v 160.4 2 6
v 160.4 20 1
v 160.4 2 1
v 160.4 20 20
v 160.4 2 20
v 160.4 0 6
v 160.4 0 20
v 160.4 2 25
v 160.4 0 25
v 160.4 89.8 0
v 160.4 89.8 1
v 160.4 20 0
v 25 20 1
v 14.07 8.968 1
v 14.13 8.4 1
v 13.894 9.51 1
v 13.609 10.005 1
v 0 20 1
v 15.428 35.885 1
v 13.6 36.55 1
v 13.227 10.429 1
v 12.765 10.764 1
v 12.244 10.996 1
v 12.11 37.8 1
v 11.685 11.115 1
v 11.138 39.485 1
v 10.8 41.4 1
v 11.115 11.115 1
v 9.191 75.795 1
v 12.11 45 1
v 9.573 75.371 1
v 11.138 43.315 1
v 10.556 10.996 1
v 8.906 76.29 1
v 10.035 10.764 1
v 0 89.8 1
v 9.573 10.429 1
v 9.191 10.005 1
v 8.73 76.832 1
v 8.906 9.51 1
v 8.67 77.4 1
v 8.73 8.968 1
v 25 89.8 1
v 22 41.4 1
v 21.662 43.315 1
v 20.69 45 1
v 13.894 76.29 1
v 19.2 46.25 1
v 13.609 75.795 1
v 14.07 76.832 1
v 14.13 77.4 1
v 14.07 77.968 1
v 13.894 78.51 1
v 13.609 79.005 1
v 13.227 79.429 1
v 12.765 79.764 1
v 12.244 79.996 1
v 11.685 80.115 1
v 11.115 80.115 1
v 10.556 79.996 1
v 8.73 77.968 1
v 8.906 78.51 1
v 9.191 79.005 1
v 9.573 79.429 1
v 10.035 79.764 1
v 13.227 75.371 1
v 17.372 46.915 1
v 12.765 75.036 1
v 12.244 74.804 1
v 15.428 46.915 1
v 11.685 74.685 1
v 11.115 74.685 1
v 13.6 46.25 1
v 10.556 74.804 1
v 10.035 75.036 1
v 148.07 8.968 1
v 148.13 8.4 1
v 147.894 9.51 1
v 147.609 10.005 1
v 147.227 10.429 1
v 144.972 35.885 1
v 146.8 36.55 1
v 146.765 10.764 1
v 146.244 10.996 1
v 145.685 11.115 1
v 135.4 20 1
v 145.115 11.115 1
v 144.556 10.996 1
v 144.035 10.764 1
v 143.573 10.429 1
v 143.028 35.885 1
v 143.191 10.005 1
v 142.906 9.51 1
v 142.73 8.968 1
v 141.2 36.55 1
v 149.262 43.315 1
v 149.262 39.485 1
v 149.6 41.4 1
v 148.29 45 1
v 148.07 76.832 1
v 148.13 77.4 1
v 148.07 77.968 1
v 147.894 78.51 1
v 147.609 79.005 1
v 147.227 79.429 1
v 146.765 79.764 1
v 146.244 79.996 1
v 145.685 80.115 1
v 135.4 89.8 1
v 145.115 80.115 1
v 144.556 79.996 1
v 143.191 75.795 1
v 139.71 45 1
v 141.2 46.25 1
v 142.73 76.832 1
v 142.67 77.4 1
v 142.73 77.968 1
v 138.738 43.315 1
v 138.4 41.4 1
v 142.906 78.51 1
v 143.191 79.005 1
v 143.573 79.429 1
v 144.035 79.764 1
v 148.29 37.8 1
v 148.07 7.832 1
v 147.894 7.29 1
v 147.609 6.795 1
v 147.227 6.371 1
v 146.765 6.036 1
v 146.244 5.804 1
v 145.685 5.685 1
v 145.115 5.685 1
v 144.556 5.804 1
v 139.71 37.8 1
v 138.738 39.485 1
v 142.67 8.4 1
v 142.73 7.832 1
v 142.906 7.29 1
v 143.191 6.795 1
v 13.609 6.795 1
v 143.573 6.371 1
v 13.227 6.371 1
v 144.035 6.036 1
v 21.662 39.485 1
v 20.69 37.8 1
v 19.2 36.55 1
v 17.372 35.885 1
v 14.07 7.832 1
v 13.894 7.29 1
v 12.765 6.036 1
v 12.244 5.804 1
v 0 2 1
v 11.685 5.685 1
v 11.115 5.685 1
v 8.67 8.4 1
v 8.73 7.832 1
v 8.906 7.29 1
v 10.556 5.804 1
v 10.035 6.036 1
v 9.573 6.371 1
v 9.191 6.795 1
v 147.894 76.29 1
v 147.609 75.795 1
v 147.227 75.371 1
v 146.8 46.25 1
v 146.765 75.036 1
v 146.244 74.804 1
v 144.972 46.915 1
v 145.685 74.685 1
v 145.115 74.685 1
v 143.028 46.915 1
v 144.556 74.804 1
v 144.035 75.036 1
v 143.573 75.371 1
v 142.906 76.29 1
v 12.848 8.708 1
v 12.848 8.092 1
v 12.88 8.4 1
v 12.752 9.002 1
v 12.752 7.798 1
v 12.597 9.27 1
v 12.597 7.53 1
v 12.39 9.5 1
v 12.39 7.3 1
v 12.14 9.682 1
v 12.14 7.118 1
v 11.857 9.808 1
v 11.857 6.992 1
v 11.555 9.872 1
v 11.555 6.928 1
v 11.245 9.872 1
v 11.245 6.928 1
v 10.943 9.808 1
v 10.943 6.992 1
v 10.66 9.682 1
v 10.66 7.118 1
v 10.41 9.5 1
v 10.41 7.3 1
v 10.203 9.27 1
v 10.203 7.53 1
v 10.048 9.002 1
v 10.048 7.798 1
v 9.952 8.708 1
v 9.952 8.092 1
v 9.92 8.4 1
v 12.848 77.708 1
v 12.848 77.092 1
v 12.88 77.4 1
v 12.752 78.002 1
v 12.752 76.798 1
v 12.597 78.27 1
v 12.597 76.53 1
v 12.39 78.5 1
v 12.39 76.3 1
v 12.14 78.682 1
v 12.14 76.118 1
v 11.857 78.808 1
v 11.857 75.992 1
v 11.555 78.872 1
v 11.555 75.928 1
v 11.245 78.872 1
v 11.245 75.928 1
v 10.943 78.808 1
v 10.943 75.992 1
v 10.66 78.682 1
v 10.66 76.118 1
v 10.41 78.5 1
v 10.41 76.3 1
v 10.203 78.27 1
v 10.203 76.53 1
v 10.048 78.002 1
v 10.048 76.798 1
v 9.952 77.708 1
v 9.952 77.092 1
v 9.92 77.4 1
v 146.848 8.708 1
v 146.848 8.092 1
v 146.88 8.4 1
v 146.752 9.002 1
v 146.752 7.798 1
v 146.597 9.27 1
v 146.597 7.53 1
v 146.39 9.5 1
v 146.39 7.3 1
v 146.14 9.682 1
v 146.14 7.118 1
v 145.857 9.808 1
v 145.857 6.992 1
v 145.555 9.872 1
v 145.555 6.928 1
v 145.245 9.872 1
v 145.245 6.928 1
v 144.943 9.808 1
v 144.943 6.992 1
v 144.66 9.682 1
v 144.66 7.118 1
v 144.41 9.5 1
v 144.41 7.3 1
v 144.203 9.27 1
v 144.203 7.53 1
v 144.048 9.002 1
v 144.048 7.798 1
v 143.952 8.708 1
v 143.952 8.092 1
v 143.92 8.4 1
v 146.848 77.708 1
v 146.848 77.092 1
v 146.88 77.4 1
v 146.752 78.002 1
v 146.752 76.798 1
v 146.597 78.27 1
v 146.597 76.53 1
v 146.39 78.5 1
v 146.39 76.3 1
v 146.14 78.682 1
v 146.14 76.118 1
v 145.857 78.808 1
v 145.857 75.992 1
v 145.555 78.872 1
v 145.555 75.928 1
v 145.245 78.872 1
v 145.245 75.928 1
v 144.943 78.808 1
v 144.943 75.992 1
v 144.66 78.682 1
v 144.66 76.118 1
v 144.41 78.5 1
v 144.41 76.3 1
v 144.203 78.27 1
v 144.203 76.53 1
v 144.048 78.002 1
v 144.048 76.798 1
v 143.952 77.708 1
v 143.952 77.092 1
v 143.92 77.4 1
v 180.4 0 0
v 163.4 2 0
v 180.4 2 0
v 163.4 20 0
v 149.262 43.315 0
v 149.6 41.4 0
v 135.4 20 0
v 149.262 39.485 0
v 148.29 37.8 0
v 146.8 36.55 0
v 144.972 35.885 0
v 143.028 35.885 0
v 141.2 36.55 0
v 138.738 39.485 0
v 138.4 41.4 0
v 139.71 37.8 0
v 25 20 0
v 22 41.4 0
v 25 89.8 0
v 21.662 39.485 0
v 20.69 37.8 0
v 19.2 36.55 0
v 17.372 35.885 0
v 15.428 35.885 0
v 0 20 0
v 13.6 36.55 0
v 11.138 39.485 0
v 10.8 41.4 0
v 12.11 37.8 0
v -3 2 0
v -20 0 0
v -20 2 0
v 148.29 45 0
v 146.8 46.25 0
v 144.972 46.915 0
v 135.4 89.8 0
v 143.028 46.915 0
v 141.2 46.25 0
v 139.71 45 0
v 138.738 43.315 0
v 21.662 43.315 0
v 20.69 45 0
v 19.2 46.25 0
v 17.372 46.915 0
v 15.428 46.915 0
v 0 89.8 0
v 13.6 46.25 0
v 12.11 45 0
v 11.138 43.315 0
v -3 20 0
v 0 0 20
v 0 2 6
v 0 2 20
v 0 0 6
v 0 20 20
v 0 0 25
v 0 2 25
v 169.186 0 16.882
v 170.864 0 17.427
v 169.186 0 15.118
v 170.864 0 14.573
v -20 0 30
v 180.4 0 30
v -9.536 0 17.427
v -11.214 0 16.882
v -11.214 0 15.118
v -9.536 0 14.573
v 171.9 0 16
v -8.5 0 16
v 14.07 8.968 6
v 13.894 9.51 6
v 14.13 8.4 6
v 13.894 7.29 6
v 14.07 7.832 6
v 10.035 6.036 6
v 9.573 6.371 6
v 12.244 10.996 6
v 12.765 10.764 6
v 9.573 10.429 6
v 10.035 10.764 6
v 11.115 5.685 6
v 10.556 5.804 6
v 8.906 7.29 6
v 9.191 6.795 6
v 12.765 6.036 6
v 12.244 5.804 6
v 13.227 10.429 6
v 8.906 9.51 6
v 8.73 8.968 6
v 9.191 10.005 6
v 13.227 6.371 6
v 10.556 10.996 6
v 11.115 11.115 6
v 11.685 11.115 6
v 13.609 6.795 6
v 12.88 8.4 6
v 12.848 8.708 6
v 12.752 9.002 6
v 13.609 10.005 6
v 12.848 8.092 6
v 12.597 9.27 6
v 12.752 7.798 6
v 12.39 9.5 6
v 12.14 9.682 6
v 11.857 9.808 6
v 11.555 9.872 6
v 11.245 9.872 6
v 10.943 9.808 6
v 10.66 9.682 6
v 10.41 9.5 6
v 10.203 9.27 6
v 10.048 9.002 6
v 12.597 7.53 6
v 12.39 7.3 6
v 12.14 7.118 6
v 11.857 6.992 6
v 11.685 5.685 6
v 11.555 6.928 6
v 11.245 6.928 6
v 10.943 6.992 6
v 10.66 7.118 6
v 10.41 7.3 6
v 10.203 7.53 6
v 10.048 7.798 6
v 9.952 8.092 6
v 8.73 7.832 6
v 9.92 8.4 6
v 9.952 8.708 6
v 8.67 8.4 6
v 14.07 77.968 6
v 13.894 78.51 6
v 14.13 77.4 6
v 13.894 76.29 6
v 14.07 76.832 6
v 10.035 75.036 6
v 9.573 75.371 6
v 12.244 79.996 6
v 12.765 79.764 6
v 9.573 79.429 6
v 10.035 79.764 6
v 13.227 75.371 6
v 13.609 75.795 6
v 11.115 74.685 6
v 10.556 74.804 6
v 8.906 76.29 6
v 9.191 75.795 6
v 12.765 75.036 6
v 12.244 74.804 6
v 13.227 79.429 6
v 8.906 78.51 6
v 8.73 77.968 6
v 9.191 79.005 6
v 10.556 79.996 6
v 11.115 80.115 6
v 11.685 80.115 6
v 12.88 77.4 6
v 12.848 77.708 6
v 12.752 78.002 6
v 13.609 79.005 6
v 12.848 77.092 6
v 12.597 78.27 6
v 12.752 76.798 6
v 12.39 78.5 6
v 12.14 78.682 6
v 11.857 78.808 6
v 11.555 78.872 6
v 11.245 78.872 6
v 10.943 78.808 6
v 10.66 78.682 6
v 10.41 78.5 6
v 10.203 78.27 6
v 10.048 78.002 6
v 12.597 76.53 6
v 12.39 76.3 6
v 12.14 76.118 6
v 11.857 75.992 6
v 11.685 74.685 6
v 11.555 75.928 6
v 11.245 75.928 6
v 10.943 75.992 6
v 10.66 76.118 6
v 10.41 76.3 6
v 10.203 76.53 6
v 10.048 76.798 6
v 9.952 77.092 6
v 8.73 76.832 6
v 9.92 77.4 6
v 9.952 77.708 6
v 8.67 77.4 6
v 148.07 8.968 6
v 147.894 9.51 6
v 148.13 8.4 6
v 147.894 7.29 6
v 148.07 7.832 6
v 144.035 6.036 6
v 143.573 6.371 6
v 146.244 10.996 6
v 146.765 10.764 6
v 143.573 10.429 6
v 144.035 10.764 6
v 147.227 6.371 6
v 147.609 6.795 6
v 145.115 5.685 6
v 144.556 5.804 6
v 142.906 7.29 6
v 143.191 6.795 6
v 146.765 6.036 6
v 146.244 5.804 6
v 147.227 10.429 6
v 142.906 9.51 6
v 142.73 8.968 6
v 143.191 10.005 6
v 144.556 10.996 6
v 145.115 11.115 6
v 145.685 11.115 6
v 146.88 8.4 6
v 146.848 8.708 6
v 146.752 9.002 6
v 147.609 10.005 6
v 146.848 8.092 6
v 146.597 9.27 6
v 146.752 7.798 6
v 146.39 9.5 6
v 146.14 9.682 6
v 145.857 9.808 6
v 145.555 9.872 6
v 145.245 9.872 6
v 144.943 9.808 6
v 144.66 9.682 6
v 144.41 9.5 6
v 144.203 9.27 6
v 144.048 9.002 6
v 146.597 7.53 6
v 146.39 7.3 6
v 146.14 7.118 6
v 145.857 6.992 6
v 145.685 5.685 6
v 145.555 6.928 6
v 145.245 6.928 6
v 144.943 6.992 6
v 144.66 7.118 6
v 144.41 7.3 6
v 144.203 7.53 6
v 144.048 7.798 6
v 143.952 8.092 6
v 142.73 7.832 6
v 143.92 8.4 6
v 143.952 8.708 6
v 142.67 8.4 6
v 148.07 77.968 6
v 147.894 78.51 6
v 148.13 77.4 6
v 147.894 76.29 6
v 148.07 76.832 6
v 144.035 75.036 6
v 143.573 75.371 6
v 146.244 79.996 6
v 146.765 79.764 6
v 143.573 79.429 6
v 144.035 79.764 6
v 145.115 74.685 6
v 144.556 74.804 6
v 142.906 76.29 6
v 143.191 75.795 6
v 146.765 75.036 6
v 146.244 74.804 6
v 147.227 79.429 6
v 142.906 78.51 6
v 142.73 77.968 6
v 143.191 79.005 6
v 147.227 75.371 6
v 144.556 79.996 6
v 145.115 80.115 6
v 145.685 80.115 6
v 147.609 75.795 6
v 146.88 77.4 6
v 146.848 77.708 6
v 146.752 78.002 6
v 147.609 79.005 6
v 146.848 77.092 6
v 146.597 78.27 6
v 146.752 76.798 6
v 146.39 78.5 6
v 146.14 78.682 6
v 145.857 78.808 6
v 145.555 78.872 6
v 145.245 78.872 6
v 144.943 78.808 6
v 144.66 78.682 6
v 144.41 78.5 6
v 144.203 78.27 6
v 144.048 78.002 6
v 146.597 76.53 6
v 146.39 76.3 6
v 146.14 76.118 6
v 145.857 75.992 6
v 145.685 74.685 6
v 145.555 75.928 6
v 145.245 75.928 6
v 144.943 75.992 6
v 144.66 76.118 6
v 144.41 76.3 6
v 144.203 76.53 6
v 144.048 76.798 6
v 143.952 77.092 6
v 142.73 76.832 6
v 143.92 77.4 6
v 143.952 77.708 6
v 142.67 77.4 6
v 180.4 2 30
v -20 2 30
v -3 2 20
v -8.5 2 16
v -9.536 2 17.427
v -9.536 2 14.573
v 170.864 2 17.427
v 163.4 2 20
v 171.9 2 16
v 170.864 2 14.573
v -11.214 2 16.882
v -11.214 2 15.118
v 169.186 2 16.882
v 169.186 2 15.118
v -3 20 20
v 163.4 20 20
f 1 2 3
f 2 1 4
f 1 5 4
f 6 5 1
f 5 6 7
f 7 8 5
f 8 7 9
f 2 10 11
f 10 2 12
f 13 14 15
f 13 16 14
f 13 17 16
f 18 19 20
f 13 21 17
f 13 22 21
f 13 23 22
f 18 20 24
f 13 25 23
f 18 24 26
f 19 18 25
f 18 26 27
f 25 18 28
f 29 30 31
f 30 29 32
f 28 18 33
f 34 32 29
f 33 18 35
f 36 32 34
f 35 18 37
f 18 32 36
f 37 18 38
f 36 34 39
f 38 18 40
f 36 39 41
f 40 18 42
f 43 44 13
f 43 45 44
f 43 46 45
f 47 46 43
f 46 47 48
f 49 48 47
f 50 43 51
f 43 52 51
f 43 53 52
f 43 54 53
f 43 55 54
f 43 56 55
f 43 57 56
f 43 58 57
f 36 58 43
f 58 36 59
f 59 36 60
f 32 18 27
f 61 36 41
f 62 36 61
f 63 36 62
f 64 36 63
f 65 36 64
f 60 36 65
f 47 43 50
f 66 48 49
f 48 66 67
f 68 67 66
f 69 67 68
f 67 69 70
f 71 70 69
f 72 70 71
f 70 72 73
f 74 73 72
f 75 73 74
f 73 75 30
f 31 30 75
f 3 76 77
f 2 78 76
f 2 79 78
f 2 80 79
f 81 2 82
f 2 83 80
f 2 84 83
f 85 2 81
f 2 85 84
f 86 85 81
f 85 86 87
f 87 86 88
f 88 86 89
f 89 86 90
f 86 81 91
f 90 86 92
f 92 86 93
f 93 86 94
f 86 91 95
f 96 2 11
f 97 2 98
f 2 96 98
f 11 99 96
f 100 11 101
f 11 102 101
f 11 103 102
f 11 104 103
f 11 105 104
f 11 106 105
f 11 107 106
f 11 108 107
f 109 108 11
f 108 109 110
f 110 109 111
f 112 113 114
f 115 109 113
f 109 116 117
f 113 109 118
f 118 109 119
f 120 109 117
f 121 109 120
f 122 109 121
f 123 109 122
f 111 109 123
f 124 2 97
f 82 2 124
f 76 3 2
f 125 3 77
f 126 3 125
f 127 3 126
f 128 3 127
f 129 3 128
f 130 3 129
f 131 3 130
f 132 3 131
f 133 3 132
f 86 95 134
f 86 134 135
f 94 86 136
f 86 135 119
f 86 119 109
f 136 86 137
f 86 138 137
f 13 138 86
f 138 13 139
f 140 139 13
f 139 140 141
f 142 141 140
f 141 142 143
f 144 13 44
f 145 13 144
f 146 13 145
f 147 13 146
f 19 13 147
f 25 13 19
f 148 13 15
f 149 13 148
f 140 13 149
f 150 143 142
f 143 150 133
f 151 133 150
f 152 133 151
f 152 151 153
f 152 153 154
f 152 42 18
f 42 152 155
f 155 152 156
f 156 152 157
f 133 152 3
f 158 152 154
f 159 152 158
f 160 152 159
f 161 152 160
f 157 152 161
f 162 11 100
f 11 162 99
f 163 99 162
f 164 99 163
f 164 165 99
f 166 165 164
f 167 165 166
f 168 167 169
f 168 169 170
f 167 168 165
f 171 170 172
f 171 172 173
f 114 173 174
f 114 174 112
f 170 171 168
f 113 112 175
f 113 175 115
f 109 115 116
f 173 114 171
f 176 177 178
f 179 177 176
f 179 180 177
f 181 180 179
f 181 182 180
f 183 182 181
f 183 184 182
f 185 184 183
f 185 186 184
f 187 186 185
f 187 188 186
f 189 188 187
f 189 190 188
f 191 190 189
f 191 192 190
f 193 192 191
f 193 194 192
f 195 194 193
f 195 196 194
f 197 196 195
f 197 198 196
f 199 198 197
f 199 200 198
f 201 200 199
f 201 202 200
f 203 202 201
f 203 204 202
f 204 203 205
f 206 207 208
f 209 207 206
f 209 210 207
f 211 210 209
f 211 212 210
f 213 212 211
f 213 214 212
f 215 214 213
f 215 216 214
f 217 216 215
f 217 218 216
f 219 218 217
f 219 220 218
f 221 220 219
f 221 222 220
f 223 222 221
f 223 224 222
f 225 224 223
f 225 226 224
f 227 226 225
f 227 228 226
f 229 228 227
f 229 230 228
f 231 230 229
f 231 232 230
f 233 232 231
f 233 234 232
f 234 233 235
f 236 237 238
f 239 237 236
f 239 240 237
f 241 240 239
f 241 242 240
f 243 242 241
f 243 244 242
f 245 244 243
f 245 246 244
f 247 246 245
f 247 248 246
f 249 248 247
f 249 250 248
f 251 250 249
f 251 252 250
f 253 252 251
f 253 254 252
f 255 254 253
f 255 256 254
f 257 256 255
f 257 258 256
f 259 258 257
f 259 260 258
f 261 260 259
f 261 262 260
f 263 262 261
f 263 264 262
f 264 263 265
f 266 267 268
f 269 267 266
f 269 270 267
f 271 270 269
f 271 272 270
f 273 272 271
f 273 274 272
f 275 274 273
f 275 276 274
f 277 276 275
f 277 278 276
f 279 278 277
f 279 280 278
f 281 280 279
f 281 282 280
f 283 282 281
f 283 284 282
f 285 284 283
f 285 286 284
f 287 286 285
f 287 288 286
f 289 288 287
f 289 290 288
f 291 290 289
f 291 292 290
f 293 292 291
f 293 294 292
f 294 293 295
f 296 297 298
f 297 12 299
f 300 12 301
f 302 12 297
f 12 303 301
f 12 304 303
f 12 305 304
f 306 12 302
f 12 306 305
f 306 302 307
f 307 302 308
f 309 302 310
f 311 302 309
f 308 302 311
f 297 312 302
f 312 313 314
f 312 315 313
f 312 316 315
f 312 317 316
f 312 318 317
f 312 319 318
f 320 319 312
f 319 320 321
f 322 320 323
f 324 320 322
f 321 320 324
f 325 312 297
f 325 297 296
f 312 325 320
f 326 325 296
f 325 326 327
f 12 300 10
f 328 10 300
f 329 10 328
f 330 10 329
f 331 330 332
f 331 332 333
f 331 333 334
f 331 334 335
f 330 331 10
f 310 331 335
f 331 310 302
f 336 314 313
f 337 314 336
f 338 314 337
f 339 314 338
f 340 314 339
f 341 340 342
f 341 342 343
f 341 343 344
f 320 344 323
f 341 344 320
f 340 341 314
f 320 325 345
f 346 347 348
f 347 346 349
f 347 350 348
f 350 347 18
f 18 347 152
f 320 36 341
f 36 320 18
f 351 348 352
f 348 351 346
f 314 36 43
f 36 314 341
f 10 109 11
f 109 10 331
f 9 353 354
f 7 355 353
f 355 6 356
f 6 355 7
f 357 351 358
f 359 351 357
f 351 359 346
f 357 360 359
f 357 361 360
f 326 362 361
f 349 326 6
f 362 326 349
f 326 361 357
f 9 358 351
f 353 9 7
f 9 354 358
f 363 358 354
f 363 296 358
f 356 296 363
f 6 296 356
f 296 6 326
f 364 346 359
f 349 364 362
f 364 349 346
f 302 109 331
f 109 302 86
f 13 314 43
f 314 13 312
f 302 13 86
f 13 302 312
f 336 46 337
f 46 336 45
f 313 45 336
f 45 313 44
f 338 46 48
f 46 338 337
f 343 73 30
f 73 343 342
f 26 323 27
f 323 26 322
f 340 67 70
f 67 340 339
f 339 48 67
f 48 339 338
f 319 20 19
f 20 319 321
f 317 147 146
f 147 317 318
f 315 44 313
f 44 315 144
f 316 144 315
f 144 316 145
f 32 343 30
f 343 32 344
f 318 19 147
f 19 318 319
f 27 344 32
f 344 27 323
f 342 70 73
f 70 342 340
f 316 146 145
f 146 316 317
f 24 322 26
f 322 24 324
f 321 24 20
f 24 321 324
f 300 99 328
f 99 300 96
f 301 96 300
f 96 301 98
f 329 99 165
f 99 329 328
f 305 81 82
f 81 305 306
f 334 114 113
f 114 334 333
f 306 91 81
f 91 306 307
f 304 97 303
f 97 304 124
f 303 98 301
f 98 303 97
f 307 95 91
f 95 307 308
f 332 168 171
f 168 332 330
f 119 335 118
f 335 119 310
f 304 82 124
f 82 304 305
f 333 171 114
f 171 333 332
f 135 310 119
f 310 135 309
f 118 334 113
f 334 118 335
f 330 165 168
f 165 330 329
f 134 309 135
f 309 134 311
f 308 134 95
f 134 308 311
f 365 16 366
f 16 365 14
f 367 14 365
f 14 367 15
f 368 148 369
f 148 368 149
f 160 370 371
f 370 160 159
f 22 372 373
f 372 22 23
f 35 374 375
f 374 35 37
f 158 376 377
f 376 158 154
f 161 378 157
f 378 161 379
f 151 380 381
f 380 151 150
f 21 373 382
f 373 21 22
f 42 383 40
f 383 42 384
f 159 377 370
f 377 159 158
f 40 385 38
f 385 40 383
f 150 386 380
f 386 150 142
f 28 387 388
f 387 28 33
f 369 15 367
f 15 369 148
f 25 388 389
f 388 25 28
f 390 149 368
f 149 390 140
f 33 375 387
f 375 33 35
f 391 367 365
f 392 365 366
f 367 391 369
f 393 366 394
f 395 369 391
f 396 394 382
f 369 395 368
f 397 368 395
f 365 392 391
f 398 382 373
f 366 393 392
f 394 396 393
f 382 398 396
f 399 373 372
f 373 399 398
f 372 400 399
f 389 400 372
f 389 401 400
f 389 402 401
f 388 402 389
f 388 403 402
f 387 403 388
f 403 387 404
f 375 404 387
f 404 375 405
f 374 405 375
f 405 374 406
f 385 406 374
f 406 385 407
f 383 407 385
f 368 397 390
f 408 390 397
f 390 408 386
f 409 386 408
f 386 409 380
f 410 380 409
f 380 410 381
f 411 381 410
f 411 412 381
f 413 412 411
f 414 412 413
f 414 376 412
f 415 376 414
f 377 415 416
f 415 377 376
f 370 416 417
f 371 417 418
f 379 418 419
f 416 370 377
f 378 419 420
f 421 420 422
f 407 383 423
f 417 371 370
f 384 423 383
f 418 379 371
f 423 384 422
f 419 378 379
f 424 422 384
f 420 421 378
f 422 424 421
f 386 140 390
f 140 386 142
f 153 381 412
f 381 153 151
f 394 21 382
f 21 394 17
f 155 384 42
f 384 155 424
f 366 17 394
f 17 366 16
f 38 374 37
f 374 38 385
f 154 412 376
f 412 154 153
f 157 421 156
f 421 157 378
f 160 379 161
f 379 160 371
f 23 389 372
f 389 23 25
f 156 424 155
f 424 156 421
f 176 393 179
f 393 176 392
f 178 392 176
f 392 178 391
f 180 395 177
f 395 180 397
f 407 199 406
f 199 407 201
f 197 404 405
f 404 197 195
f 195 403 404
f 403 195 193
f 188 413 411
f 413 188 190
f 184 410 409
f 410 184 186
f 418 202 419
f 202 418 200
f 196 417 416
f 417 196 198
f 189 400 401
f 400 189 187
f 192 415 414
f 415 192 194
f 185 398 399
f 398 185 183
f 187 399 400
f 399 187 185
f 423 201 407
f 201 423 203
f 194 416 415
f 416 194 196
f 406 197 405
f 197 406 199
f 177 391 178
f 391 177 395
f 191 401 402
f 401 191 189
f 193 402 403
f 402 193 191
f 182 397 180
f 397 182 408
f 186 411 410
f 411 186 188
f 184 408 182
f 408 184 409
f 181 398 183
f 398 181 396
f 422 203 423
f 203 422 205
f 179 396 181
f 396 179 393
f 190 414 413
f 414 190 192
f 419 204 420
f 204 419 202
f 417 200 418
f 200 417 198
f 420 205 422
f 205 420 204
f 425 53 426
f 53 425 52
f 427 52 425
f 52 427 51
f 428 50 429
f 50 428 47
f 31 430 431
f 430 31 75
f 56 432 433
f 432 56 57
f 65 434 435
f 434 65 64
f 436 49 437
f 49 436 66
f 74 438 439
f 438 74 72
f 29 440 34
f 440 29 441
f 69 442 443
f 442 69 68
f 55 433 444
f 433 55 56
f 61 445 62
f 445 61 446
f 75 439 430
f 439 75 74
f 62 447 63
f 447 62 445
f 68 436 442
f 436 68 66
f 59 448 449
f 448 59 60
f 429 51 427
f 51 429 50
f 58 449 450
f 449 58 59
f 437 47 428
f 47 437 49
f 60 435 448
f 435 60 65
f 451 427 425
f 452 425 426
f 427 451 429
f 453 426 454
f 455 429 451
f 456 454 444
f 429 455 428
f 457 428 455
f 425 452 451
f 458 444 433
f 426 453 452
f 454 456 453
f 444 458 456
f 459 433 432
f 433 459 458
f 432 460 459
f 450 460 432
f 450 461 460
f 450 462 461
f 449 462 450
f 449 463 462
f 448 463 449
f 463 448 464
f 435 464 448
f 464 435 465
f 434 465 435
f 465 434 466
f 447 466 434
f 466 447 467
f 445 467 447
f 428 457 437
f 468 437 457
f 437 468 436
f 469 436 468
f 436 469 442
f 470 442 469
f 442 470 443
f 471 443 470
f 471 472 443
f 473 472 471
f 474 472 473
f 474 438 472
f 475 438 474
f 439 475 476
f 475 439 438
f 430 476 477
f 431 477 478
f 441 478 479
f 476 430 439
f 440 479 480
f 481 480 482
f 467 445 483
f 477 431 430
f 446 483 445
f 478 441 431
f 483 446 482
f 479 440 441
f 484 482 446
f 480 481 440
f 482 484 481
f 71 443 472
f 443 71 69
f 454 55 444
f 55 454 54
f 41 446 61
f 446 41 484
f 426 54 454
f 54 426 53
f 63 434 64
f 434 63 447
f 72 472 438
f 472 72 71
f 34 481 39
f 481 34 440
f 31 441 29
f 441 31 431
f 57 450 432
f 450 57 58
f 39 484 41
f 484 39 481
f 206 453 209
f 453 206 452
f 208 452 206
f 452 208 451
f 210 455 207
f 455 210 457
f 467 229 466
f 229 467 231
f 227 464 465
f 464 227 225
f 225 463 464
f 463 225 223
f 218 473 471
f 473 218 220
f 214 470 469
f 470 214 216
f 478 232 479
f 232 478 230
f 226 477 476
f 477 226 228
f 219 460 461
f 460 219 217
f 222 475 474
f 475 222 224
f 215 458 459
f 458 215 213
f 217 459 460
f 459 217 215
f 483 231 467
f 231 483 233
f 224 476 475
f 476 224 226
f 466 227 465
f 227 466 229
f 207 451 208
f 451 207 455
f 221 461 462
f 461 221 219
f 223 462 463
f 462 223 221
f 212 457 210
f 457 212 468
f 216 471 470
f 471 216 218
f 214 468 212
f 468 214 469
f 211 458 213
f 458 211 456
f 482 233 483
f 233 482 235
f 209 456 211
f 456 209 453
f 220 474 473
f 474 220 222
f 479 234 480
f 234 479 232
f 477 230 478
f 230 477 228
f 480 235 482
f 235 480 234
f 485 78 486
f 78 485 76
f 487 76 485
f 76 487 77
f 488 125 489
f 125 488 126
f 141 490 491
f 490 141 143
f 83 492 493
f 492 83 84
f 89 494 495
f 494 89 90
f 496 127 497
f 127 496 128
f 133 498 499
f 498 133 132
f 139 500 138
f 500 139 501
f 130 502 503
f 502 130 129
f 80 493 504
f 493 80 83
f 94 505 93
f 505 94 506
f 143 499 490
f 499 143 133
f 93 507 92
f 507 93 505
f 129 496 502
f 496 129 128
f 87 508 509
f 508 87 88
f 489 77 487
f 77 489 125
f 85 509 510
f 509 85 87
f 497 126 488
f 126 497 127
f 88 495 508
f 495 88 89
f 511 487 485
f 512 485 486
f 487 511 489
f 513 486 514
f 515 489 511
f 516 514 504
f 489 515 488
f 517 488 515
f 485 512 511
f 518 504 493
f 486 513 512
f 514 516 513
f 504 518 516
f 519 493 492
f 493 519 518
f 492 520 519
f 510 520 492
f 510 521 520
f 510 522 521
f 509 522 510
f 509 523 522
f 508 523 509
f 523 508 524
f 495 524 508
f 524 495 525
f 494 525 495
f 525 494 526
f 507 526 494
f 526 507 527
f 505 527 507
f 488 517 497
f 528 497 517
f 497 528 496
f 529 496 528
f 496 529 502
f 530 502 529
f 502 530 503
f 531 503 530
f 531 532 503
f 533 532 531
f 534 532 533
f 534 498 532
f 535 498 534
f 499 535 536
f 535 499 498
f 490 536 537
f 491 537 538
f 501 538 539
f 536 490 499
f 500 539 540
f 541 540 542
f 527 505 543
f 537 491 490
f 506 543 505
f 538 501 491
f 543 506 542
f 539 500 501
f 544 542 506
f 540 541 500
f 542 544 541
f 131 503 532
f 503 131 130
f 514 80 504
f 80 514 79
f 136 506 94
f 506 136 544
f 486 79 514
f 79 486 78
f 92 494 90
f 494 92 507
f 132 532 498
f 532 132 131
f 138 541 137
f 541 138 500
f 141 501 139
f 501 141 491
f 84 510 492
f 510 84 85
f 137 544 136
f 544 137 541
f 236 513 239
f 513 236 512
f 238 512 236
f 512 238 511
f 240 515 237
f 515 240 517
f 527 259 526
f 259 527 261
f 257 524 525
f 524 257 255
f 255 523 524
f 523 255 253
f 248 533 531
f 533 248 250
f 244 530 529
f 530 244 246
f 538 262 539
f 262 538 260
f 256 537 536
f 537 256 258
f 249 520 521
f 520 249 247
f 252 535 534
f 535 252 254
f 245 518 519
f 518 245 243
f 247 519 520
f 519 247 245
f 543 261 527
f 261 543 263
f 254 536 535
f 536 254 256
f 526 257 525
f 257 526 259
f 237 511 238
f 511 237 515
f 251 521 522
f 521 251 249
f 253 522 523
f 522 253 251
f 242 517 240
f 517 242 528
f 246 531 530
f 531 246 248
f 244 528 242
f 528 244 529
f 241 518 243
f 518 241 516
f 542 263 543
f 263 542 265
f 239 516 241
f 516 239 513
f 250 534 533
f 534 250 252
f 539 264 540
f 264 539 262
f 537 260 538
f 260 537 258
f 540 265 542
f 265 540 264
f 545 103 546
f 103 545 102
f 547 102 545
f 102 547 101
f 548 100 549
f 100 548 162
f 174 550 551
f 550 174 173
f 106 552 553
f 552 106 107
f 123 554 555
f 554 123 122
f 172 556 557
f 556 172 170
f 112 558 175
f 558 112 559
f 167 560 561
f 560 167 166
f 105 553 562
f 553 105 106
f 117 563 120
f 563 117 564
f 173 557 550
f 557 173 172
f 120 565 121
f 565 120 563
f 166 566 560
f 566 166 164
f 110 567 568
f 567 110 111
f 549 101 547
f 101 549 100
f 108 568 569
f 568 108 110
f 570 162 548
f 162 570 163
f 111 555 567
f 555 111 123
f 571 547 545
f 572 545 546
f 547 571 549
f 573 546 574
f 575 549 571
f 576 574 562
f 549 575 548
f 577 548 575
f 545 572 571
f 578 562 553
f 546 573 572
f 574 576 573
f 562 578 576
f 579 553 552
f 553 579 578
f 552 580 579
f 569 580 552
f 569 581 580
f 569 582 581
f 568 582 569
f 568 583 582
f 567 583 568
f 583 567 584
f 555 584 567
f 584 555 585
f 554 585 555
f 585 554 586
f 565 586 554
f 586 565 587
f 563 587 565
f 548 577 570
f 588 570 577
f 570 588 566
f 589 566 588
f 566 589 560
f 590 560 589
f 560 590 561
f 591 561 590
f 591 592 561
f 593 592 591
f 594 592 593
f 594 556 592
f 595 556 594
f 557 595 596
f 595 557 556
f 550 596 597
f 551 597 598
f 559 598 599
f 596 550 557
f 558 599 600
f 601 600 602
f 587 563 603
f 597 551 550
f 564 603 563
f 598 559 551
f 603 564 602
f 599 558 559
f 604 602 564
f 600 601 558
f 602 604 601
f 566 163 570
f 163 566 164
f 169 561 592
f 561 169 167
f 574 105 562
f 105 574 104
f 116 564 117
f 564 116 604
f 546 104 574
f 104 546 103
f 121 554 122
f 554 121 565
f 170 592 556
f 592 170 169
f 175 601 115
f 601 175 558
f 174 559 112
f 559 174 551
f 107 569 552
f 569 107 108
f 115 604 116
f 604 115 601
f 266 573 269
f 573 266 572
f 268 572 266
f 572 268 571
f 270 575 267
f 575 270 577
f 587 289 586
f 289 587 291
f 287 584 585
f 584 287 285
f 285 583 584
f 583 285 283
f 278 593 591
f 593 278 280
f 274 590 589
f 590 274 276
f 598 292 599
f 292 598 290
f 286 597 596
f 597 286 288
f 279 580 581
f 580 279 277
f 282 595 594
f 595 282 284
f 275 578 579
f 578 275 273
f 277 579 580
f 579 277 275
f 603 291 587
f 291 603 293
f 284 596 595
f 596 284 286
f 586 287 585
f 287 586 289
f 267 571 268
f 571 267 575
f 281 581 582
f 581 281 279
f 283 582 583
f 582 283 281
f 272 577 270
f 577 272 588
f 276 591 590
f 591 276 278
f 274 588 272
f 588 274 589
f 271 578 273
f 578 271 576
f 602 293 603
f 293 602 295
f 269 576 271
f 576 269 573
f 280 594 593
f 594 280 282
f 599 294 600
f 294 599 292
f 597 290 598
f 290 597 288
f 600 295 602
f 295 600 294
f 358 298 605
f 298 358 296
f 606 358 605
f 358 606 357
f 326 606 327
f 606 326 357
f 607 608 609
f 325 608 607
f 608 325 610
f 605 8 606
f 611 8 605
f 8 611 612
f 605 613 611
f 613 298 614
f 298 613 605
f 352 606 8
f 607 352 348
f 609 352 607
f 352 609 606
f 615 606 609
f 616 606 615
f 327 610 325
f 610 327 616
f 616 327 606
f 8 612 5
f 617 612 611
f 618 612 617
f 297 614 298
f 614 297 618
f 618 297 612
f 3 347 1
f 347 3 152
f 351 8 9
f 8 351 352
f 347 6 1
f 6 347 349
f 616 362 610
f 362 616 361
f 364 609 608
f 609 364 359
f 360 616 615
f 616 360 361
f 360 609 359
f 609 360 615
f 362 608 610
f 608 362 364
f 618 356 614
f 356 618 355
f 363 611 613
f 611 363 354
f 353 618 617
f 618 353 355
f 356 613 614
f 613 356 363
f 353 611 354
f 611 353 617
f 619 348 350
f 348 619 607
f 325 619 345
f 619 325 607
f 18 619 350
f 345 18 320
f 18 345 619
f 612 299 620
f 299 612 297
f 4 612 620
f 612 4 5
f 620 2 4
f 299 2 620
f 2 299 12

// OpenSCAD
width = 160 + .4; // added .4 for easier fit
depth = 89.8;

standoff_height = 6;
standoff_screw = 2.96;

rack_case_holes_inner = 120.4;
rack_case_holes_edge = 41.4;
rack_case_holes_d = 7.2;
rack_case_holes_dist = rack_case_holes_inner + rack_case_holes_d;

module standoff(x, y) {
  difference() {
    $fn = 30;
    color("red")
    translate([x, y, 0])
      cylinder(standoff_height, d=standoff_screw + 2.5);
    translate([x, y, -1])
      cylinder(standoff_height + 3, d=standoff_screw);
  }
}

difference() {
  // board
  cube([width, depth, 1]);
  // board cutout
  color("red")
  translate([25, 20, -1])
  cube([width-50, depth, 4]);

  // cutouts for standoff in rack case
  color("black")
  translate([(width - rack_case_holes_dist)/2, rack_case_holes_edge, -1])
    cylinder(6, d=rack_case_holes_d + 4);
  color("black")
  translate([(width - rack_case_holes_dist)/2 + rack_case_holes_dist, rack_case_holes_edge, -1])
    cylinder(6, d=rack_case_holes_d + 4);
}

// front left screw
standoff(11.4, 8.4);
// back left screw
standoff(11.4, 8.4 + 69);
// front right screw
standoff(11.4 + 134, 8.4);
// back right screw
standoff(11.4 + 134, 8.4 + 69);

// IO plate
difference(){
  translate([-20, 0, 0])
    cube([width + 40, 2, 30]);
  translate([0, -2, standoff_height])
    cube([width, 8, 19]);

  // screw holes
  translate([-10, 0, 16])
    rotate([90, 0, 0])
    cylinder(8, d=3, center=true);
  translate([10 + width, 0, 16])
    rotate([90, 0, 0])
    cylinder(8, d=3, center=true);
}
translate([-3, 0, 0])
cube([3, 20, 20]);
translate([width, 0, 0])
cube([3, 20, 20]);
